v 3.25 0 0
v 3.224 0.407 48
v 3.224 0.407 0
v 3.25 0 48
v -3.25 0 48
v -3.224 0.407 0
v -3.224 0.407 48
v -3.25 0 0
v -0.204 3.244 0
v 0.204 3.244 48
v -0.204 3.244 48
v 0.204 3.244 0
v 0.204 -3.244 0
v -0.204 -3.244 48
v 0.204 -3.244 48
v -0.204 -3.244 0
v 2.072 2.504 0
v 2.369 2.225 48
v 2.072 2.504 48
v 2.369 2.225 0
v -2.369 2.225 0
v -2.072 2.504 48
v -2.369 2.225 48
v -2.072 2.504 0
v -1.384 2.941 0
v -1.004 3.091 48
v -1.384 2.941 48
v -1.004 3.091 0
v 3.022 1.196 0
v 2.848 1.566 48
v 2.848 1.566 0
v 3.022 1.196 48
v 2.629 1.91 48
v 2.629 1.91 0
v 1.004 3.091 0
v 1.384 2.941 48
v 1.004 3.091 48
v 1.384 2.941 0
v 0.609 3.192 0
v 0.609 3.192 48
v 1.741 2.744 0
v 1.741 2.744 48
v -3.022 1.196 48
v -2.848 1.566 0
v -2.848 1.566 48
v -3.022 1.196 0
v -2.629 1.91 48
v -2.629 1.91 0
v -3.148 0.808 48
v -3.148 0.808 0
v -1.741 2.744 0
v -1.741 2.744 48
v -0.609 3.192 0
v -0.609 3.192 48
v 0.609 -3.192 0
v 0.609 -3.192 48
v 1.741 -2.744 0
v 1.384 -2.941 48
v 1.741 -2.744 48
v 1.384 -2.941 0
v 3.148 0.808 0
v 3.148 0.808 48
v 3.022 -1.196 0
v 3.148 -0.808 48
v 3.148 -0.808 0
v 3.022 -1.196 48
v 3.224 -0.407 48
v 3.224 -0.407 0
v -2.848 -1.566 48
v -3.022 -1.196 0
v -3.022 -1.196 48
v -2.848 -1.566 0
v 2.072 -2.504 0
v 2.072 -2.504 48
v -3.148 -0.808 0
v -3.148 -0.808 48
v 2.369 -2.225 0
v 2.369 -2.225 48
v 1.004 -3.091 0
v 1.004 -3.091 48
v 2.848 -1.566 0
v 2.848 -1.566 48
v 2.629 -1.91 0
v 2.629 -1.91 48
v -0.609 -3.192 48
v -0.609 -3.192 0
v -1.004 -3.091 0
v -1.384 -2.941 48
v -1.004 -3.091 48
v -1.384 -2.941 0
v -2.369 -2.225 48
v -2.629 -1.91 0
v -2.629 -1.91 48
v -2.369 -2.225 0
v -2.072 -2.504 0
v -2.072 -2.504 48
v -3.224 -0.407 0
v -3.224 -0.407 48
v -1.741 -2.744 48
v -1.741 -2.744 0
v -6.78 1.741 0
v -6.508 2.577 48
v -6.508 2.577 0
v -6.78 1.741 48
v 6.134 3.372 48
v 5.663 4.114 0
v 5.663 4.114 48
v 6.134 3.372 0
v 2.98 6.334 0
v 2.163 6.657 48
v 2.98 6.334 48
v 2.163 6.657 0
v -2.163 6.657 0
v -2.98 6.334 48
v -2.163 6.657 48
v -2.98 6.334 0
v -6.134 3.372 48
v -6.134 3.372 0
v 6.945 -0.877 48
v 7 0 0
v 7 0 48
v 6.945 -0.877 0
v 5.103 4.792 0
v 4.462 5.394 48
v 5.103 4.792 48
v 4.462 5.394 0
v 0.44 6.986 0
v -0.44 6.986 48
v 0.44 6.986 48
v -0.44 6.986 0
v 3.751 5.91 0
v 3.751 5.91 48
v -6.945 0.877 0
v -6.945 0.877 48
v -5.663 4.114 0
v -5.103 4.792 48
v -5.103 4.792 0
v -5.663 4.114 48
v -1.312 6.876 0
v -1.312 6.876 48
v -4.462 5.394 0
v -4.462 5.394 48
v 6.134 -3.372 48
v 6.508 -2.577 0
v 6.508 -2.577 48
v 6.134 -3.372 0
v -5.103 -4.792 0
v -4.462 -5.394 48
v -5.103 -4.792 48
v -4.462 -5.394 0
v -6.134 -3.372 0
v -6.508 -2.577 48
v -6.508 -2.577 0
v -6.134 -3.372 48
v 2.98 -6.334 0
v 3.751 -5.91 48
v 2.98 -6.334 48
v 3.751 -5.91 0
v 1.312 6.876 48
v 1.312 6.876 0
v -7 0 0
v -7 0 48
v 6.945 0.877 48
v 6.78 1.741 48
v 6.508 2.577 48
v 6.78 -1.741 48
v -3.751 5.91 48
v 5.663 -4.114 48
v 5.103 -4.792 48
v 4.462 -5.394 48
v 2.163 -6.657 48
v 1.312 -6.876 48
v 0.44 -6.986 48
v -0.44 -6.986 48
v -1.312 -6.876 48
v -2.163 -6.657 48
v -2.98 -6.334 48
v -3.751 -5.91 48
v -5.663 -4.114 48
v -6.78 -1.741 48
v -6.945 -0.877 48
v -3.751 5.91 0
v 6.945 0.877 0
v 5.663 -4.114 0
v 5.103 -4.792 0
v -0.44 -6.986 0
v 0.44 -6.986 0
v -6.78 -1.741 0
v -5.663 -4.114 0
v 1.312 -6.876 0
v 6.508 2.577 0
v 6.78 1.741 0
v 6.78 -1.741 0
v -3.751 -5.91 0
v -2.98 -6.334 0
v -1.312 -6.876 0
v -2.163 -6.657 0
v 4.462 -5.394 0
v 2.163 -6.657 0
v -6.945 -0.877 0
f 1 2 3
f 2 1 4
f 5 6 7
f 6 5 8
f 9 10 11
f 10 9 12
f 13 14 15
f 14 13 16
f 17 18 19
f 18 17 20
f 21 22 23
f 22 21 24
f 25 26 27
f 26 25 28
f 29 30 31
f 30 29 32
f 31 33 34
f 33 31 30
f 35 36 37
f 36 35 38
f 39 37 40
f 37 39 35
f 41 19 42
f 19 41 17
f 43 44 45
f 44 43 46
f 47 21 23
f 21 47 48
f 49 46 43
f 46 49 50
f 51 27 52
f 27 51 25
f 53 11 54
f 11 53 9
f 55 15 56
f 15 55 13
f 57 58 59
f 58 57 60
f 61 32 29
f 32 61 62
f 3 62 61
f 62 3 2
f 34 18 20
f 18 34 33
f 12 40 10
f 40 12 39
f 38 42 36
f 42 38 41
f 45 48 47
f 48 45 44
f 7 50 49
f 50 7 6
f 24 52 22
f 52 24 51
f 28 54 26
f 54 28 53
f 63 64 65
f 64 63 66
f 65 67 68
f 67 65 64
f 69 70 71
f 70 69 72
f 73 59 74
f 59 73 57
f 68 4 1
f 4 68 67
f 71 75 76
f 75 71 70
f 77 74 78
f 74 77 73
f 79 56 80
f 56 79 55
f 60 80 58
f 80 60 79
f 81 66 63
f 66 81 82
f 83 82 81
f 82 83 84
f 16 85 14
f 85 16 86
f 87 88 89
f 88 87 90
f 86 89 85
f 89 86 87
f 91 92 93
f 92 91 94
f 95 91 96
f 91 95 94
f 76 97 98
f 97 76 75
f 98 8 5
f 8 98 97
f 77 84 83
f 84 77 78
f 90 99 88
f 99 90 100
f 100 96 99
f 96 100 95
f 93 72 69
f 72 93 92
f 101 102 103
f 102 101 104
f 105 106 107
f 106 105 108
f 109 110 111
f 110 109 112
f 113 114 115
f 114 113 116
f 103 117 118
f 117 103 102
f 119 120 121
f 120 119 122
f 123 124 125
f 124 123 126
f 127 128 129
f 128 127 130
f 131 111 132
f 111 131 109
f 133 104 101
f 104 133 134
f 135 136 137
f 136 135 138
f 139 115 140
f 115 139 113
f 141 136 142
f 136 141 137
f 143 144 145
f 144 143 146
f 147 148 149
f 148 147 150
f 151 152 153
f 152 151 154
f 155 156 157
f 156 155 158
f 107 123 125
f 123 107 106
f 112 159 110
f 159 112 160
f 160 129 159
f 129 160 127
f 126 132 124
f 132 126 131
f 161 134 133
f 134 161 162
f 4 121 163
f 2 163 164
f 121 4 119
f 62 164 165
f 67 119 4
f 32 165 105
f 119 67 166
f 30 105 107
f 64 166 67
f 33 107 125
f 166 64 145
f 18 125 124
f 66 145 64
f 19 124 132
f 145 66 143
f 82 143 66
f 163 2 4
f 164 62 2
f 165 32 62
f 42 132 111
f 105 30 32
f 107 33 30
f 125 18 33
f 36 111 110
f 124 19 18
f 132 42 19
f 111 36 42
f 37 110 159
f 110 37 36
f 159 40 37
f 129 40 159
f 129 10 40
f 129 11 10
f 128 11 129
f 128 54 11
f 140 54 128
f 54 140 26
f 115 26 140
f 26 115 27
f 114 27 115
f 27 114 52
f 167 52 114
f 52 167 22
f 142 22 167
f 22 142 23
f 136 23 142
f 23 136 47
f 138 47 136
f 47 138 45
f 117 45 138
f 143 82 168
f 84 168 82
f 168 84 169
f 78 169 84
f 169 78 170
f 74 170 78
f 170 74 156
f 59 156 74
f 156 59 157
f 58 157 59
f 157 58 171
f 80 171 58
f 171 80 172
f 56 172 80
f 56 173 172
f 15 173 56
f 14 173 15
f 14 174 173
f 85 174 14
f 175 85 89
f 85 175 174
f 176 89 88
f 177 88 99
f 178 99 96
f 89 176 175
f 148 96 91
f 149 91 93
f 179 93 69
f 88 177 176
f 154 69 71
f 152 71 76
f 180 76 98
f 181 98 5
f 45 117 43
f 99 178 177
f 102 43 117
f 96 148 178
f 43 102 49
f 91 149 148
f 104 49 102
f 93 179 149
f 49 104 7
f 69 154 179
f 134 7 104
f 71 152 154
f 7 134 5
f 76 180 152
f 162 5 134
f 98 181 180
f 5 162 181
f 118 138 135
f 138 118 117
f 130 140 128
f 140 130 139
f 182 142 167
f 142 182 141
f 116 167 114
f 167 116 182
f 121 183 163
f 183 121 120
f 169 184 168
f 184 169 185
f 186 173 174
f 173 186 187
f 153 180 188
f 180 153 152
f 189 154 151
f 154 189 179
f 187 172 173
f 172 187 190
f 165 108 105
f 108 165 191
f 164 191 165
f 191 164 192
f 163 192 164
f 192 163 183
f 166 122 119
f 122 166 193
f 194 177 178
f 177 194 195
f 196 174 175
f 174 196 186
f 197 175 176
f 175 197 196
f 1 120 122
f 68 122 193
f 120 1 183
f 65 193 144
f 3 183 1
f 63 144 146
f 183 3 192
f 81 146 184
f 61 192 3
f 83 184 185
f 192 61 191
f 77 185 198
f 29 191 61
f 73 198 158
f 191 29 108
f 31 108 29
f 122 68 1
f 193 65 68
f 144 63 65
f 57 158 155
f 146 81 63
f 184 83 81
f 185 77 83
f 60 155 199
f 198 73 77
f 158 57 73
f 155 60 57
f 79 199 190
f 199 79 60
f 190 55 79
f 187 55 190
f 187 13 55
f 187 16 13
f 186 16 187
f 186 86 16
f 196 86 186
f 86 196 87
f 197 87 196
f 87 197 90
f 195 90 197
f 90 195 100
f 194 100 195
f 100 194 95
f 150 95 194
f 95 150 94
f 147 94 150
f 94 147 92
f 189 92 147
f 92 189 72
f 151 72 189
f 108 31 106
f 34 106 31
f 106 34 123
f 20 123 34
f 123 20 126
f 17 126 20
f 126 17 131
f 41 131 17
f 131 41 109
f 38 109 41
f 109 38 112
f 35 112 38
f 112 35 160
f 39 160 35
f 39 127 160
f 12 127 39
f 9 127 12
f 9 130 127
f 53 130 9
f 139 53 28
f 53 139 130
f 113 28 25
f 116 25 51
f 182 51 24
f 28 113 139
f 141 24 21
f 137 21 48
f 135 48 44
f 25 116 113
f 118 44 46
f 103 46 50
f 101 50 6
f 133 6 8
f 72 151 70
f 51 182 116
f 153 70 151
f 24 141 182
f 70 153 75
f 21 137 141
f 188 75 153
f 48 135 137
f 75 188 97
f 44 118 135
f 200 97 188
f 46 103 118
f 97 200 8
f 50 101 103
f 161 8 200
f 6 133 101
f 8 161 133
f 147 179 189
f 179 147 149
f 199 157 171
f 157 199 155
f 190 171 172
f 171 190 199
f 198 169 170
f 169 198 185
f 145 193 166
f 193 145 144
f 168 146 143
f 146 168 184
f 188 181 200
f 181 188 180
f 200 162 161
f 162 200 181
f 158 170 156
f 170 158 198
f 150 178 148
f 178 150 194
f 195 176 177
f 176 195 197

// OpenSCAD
$fn = 50;


difference() {
	union() {
		cylinder(h = 48, r = 7.0000000000);
	}
	union() {
		translate(v = [0, 0, -100]) {
			cylinder(h = 200, r = 3.2500000000);
		}
		translate(v = [0, 0, -100]) {
			cylinder(h = 200, r = 1.8000000000);
		}
	}
}
